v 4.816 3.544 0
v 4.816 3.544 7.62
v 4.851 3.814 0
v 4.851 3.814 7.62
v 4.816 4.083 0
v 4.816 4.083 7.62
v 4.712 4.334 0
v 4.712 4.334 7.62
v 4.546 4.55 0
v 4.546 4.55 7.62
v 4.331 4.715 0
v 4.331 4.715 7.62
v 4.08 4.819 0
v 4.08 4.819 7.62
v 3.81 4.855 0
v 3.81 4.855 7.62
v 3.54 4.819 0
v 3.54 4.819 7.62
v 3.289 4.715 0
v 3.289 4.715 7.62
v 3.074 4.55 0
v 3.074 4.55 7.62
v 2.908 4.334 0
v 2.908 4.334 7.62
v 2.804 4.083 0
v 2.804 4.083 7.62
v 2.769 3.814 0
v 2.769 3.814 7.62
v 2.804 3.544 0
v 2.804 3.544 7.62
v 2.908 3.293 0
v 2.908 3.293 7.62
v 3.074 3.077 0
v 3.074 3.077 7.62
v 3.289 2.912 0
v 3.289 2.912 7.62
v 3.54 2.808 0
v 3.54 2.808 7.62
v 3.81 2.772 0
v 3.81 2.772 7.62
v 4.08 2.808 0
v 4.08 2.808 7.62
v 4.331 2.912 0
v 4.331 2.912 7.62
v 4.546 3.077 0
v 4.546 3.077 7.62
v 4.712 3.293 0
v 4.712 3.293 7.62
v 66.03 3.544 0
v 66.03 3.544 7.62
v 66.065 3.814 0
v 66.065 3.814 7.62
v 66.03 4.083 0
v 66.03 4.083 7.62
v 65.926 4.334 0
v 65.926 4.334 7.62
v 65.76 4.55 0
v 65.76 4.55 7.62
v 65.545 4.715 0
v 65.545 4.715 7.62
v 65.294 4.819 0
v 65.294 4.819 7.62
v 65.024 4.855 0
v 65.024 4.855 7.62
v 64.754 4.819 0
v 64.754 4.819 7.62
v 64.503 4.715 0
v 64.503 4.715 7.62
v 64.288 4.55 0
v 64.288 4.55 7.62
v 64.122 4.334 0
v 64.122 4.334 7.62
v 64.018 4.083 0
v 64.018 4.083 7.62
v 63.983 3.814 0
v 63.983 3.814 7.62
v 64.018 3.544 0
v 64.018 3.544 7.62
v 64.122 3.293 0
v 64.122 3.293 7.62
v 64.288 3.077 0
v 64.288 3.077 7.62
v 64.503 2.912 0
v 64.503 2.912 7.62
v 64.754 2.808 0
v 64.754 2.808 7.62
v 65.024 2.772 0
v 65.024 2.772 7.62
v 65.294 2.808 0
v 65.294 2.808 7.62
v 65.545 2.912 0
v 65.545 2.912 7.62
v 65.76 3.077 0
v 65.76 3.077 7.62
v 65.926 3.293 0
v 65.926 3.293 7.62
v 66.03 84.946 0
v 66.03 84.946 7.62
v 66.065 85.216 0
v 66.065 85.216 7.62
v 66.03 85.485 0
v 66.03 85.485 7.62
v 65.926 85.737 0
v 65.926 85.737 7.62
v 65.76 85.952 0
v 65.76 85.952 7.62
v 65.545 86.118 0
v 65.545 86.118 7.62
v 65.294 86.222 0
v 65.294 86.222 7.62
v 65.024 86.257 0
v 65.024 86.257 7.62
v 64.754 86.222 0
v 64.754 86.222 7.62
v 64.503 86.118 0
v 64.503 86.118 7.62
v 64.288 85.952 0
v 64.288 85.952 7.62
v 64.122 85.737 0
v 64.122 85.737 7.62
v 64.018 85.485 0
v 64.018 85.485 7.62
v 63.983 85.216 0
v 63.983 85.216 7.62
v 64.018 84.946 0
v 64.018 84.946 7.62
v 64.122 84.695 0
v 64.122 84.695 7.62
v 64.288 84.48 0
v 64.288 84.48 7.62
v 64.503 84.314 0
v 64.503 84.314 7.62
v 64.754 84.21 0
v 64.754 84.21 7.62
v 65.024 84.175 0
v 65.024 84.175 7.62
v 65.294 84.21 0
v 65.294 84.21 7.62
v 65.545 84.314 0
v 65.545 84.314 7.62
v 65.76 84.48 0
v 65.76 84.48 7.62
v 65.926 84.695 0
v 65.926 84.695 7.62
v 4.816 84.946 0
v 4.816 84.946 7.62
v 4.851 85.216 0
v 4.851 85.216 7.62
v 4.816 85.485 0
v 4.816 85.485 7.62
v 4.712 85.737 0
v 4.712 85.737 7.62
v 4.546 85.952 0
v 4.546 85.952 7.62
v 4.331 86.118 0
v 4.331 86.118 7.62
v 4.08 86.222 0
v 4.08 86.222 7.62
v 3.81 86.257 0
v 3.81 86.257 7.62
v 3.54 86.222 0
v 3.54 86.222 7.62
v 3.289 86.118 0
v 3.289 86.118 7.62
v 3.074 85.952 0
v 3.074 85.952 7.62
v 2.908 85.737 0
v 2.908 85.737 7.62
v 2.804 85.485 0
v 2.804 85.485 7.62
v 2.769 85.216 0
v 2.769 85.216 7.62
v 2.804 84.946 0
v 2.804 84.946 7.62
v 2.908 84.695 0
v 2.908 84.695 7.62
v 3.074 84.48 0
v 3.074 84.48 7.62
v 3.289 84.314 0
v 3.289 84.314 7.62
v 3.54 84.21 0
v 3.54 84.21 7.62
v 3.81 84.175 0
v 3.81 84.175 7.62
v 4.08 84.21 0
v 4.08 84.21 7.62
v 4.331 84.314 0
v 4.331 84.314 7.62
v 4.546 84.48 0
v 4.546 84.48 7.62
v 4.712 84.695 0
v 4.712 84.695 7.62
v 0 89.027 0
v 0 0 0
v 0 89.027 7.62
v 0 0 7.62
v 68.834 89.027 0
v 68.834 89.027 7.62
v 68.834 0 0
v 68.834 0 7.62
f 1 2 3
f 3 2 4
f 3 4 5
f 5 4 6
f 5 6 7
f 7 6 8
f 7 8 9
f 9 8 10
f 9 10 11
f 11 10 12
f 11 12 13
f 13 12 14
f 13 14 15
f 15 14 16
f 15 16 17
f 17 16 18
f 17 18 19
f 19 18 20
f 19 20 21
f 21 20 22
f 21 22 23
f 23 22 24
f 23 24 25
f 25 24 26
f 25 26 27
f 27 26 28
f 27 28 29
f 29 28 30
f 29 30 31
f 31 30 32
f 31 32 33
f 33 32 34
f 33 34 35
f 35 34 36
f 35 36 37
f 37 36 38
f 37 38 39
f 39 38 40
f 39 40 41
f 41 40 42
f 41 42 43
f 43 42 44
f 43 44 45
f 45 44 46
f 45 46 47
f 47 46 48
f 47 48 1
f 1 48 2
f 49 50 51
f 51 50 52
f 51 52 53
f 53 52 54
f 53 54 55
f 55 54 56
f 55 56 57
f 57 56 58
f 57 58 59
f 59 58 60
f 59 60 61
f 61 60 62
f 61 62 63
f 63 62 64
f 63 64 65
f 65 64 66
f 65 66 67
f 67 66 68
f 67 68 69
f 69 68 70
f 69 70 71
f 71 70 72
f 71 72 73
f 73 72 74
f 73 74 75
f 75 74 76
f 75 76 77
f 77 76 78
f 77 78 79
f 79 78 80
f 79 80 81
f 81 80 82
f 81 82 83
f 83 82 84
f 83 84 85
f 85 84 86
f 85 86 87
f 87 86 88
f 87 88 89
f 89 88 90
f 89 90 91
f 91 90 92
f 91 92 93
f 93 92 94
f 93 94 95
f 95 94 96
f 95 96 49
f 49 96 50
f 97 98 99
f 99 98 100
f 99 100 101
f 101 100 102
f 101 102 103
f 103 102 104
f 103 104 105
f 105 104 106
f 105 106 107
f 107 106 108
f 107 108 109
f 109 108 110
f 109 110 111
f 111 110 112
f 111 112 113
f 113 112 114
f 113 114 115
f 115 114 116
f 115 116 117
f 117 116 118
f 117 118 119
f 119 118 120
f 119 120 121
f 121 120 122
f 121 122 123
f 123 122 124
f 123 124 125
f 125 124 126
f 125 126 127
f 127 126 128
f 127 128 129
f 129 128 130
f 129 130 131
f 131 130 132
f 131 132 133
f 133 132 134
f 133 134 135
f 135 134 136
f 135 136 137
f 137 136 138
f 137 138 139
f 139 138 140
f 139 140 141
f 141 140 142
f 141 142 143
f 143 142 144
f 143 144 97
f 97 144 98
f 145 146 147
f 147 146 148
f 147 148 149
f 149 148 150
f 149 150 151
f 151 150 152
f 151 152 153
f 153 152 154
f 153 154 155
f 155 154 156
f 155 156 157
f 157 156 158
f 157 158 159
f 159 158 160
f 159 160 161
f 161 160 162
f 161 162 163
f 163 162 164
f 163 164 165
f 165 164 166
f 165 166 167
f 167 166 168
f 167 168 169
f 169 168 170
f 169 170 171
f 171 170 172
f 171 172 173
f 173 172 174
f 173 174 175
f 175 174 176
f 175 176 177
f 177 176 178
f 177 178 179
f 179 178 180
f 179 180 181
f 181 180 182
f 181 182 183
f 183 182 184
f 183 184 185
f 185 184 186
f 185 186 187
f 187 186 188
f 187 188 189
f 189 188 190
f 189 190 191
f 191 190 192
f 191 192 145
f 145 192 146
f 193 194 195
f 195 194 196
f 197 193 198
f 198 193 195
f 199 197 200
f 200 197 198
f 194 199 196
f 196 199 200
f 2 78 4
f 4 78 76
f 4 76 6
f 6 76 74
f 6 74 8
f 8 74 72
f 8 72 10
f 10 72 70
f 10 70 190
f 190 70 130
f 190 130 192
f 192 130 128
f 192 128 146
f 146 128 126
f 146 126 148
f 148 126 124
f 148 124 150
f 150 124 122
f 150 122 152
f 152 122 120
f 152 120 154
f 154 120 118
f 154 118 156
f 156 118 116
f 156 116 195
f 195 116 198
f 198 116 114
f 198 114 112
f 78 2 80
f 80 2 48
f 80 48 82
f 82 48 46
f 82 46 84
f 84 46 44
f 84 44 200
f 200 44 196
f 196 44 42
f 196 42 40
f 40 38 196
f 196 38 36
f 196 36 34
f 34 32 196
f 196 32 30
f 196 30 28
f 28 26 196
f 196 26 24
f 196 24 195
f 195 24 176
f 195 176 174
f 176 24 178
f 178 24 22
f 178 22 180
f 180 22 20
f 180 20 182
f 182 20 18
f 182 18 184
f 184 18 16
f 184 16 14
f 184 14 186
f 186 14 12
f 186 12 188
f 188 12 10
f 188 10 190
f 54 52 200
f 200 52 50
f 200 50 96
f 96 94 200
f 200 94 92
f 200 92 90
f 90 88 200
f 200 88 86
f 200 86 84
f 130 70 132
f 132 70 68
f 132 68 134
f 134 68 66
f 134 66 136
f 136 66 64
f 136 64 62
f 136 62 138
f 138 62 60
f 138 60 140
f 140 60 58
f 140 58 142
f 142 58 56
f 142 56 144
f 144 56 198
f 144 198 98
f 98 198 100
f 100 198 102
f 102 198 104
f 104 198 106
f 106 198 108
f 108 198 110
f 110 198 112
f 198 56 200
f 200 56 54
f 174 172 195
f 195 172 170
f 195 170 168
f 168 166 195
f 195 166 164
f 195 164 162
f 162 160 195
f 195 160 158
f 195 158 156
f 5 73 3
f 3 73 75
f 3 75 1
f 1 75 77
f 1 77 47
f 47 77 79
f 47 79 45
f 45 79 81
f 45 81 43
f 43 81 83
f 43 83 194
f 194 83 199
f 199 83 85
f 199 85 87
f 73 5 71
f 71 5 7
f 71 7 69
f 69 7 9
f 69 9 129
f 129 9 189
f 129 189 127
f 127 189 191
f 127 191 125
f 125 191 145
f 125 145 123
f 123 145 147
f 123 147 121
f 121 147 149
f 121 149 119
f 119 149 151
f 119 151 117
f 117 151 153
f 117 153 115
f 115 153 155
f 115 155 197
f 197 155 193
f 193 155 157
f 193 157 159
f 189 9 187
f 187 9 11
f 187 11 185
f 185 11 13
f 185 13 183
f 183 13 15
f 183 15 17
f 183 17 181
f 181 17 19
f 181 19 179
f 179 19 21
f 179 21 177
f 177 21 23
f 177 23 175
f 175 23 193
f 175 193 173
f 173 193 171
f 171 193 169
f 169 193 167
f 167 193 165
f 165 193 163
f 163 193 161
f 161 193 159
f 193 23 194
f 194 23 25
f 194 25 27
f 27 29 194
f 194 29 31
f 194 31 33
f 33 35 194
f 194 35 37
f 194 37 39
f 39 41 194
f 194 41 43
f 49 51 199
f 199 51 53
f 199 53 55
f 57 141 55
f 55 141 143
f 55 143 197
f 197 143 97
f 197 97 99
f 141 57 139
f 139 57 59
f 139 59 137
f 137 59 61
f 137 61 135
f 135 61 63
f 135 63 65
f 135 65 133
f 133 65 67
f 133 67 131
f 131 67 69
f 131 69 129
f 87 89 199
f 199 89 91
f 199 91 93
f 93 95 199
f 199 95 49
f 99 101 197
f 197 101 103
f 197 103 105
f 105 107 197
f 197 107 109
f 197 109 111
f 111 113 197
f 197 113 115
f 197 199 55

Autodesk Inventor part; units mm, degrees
ref_plane "YZ Plane" through (0, 0, 0) normal (1, 0, 0) x (0, 1, 0)
ref_plane "XZ Plane" through (0, 0, 0) normal (0, 1, 0) x (-1, 0, 0)
ref_plane "XY Plane" through (0, 0, 0) normal (0, 0, 1) x (1, 0, 0)
sketch "Sketch1" plane through (0, 0, 0) normal (0, 0, 1) x (1, 0, 0)
  line L0 (0, 0) -> (68.834, 0)
  line L1 (68.834, 0) -> (68.834, 89.027)
  line L2 (68.834, 89.027) -> (0, 89.027)
  line L3 (0, 89.027) -> (0, 0)
  dimension "d0" = 89.027
  dimension "d1" = 68.834
extrude "Extrusion1" add sketch "Sketch1" along normal blind 7.62
sketch "Sketch2" plane through (0, 0, 7.62) normal (0, 0, 1) x (1, 0, 0)
  line L0 (68.834, 89.027) -> (0, 89.027) projected
  line L1 (0, 89.027) -> (3.81, 89.027)
  line L2 (3.81, 89.027) -> (3.81, 85.216)
  line L3 (3.81, 85.216) -> (0, 85.216)
  line L4 (0, 85.216) -> (0, 89.027)
  circle A0 centre (3.81, 85.216) radius 1.0414
  line L5 (68.834, 89.027) -> (65.024, 89.027)
  line L6 (65.024, 89.027) -> (65.024, 85.216)
  line L7 (65.024, 85.216) -> (68.834, 85.216)
  line L8 (68.834, 85.216) -> (68.834, 89.027)
  circle A1 centre (65.024, 85.216) radius 1.0414
  line L9 (0, 0) -> (68.834, 0) projected
  line L10 (68.834, 0) -> (65.024, 0)
  line L11 (65.024, 0) -> (65.024, 3.8136)
  line L12 (65.024, 3.8136) -> (68.834, 3.8136)
  line L13 (68.834, 3.8136) -> (68.834, 0)
  circle A2 centre (65.024, 3.8136) radius 1.0414
  line L14 (0, 0) -> (3.81, 0)
  line L15 (3.81, 0) -> (3.81, 3.8136)
  line L16 (3.81, 3.8136) -> (0, 3.8136)
  line L17 (0, 3.8136) -> (0, 0)
  circle A3 centre (3.81, 3.8136) radius 1.0414
  dimension "d4" = 3.81
  dimension "d5" = 2.0828
  dimension "d6" = 3.81
  dimension "d7" = 2.0828
  dimension "d8" = 2.0828
  dimension "d9" = 2.0828
extrude "Extrusion2" cut sketch "Sketch2" against normal blind 7.62 contours A0 L3 L2 | L2 L3 A0
extrude "Extrusion3" cut sketch "Sketch2" against normal blind 7.62 contours A1 L7 L6 | L6 L7 A1
extrude "Extrusion4" cut sketch "Sketch2" against normal blind 7.62 contours A2 L12 L11 | L11 L12 A2
extrude "Extrusion5" cut sketch "Sketch2" against normal blind 7.62 contours A3 L16 L15 | L15 L16 A3
properties part number "arduinoCover"
